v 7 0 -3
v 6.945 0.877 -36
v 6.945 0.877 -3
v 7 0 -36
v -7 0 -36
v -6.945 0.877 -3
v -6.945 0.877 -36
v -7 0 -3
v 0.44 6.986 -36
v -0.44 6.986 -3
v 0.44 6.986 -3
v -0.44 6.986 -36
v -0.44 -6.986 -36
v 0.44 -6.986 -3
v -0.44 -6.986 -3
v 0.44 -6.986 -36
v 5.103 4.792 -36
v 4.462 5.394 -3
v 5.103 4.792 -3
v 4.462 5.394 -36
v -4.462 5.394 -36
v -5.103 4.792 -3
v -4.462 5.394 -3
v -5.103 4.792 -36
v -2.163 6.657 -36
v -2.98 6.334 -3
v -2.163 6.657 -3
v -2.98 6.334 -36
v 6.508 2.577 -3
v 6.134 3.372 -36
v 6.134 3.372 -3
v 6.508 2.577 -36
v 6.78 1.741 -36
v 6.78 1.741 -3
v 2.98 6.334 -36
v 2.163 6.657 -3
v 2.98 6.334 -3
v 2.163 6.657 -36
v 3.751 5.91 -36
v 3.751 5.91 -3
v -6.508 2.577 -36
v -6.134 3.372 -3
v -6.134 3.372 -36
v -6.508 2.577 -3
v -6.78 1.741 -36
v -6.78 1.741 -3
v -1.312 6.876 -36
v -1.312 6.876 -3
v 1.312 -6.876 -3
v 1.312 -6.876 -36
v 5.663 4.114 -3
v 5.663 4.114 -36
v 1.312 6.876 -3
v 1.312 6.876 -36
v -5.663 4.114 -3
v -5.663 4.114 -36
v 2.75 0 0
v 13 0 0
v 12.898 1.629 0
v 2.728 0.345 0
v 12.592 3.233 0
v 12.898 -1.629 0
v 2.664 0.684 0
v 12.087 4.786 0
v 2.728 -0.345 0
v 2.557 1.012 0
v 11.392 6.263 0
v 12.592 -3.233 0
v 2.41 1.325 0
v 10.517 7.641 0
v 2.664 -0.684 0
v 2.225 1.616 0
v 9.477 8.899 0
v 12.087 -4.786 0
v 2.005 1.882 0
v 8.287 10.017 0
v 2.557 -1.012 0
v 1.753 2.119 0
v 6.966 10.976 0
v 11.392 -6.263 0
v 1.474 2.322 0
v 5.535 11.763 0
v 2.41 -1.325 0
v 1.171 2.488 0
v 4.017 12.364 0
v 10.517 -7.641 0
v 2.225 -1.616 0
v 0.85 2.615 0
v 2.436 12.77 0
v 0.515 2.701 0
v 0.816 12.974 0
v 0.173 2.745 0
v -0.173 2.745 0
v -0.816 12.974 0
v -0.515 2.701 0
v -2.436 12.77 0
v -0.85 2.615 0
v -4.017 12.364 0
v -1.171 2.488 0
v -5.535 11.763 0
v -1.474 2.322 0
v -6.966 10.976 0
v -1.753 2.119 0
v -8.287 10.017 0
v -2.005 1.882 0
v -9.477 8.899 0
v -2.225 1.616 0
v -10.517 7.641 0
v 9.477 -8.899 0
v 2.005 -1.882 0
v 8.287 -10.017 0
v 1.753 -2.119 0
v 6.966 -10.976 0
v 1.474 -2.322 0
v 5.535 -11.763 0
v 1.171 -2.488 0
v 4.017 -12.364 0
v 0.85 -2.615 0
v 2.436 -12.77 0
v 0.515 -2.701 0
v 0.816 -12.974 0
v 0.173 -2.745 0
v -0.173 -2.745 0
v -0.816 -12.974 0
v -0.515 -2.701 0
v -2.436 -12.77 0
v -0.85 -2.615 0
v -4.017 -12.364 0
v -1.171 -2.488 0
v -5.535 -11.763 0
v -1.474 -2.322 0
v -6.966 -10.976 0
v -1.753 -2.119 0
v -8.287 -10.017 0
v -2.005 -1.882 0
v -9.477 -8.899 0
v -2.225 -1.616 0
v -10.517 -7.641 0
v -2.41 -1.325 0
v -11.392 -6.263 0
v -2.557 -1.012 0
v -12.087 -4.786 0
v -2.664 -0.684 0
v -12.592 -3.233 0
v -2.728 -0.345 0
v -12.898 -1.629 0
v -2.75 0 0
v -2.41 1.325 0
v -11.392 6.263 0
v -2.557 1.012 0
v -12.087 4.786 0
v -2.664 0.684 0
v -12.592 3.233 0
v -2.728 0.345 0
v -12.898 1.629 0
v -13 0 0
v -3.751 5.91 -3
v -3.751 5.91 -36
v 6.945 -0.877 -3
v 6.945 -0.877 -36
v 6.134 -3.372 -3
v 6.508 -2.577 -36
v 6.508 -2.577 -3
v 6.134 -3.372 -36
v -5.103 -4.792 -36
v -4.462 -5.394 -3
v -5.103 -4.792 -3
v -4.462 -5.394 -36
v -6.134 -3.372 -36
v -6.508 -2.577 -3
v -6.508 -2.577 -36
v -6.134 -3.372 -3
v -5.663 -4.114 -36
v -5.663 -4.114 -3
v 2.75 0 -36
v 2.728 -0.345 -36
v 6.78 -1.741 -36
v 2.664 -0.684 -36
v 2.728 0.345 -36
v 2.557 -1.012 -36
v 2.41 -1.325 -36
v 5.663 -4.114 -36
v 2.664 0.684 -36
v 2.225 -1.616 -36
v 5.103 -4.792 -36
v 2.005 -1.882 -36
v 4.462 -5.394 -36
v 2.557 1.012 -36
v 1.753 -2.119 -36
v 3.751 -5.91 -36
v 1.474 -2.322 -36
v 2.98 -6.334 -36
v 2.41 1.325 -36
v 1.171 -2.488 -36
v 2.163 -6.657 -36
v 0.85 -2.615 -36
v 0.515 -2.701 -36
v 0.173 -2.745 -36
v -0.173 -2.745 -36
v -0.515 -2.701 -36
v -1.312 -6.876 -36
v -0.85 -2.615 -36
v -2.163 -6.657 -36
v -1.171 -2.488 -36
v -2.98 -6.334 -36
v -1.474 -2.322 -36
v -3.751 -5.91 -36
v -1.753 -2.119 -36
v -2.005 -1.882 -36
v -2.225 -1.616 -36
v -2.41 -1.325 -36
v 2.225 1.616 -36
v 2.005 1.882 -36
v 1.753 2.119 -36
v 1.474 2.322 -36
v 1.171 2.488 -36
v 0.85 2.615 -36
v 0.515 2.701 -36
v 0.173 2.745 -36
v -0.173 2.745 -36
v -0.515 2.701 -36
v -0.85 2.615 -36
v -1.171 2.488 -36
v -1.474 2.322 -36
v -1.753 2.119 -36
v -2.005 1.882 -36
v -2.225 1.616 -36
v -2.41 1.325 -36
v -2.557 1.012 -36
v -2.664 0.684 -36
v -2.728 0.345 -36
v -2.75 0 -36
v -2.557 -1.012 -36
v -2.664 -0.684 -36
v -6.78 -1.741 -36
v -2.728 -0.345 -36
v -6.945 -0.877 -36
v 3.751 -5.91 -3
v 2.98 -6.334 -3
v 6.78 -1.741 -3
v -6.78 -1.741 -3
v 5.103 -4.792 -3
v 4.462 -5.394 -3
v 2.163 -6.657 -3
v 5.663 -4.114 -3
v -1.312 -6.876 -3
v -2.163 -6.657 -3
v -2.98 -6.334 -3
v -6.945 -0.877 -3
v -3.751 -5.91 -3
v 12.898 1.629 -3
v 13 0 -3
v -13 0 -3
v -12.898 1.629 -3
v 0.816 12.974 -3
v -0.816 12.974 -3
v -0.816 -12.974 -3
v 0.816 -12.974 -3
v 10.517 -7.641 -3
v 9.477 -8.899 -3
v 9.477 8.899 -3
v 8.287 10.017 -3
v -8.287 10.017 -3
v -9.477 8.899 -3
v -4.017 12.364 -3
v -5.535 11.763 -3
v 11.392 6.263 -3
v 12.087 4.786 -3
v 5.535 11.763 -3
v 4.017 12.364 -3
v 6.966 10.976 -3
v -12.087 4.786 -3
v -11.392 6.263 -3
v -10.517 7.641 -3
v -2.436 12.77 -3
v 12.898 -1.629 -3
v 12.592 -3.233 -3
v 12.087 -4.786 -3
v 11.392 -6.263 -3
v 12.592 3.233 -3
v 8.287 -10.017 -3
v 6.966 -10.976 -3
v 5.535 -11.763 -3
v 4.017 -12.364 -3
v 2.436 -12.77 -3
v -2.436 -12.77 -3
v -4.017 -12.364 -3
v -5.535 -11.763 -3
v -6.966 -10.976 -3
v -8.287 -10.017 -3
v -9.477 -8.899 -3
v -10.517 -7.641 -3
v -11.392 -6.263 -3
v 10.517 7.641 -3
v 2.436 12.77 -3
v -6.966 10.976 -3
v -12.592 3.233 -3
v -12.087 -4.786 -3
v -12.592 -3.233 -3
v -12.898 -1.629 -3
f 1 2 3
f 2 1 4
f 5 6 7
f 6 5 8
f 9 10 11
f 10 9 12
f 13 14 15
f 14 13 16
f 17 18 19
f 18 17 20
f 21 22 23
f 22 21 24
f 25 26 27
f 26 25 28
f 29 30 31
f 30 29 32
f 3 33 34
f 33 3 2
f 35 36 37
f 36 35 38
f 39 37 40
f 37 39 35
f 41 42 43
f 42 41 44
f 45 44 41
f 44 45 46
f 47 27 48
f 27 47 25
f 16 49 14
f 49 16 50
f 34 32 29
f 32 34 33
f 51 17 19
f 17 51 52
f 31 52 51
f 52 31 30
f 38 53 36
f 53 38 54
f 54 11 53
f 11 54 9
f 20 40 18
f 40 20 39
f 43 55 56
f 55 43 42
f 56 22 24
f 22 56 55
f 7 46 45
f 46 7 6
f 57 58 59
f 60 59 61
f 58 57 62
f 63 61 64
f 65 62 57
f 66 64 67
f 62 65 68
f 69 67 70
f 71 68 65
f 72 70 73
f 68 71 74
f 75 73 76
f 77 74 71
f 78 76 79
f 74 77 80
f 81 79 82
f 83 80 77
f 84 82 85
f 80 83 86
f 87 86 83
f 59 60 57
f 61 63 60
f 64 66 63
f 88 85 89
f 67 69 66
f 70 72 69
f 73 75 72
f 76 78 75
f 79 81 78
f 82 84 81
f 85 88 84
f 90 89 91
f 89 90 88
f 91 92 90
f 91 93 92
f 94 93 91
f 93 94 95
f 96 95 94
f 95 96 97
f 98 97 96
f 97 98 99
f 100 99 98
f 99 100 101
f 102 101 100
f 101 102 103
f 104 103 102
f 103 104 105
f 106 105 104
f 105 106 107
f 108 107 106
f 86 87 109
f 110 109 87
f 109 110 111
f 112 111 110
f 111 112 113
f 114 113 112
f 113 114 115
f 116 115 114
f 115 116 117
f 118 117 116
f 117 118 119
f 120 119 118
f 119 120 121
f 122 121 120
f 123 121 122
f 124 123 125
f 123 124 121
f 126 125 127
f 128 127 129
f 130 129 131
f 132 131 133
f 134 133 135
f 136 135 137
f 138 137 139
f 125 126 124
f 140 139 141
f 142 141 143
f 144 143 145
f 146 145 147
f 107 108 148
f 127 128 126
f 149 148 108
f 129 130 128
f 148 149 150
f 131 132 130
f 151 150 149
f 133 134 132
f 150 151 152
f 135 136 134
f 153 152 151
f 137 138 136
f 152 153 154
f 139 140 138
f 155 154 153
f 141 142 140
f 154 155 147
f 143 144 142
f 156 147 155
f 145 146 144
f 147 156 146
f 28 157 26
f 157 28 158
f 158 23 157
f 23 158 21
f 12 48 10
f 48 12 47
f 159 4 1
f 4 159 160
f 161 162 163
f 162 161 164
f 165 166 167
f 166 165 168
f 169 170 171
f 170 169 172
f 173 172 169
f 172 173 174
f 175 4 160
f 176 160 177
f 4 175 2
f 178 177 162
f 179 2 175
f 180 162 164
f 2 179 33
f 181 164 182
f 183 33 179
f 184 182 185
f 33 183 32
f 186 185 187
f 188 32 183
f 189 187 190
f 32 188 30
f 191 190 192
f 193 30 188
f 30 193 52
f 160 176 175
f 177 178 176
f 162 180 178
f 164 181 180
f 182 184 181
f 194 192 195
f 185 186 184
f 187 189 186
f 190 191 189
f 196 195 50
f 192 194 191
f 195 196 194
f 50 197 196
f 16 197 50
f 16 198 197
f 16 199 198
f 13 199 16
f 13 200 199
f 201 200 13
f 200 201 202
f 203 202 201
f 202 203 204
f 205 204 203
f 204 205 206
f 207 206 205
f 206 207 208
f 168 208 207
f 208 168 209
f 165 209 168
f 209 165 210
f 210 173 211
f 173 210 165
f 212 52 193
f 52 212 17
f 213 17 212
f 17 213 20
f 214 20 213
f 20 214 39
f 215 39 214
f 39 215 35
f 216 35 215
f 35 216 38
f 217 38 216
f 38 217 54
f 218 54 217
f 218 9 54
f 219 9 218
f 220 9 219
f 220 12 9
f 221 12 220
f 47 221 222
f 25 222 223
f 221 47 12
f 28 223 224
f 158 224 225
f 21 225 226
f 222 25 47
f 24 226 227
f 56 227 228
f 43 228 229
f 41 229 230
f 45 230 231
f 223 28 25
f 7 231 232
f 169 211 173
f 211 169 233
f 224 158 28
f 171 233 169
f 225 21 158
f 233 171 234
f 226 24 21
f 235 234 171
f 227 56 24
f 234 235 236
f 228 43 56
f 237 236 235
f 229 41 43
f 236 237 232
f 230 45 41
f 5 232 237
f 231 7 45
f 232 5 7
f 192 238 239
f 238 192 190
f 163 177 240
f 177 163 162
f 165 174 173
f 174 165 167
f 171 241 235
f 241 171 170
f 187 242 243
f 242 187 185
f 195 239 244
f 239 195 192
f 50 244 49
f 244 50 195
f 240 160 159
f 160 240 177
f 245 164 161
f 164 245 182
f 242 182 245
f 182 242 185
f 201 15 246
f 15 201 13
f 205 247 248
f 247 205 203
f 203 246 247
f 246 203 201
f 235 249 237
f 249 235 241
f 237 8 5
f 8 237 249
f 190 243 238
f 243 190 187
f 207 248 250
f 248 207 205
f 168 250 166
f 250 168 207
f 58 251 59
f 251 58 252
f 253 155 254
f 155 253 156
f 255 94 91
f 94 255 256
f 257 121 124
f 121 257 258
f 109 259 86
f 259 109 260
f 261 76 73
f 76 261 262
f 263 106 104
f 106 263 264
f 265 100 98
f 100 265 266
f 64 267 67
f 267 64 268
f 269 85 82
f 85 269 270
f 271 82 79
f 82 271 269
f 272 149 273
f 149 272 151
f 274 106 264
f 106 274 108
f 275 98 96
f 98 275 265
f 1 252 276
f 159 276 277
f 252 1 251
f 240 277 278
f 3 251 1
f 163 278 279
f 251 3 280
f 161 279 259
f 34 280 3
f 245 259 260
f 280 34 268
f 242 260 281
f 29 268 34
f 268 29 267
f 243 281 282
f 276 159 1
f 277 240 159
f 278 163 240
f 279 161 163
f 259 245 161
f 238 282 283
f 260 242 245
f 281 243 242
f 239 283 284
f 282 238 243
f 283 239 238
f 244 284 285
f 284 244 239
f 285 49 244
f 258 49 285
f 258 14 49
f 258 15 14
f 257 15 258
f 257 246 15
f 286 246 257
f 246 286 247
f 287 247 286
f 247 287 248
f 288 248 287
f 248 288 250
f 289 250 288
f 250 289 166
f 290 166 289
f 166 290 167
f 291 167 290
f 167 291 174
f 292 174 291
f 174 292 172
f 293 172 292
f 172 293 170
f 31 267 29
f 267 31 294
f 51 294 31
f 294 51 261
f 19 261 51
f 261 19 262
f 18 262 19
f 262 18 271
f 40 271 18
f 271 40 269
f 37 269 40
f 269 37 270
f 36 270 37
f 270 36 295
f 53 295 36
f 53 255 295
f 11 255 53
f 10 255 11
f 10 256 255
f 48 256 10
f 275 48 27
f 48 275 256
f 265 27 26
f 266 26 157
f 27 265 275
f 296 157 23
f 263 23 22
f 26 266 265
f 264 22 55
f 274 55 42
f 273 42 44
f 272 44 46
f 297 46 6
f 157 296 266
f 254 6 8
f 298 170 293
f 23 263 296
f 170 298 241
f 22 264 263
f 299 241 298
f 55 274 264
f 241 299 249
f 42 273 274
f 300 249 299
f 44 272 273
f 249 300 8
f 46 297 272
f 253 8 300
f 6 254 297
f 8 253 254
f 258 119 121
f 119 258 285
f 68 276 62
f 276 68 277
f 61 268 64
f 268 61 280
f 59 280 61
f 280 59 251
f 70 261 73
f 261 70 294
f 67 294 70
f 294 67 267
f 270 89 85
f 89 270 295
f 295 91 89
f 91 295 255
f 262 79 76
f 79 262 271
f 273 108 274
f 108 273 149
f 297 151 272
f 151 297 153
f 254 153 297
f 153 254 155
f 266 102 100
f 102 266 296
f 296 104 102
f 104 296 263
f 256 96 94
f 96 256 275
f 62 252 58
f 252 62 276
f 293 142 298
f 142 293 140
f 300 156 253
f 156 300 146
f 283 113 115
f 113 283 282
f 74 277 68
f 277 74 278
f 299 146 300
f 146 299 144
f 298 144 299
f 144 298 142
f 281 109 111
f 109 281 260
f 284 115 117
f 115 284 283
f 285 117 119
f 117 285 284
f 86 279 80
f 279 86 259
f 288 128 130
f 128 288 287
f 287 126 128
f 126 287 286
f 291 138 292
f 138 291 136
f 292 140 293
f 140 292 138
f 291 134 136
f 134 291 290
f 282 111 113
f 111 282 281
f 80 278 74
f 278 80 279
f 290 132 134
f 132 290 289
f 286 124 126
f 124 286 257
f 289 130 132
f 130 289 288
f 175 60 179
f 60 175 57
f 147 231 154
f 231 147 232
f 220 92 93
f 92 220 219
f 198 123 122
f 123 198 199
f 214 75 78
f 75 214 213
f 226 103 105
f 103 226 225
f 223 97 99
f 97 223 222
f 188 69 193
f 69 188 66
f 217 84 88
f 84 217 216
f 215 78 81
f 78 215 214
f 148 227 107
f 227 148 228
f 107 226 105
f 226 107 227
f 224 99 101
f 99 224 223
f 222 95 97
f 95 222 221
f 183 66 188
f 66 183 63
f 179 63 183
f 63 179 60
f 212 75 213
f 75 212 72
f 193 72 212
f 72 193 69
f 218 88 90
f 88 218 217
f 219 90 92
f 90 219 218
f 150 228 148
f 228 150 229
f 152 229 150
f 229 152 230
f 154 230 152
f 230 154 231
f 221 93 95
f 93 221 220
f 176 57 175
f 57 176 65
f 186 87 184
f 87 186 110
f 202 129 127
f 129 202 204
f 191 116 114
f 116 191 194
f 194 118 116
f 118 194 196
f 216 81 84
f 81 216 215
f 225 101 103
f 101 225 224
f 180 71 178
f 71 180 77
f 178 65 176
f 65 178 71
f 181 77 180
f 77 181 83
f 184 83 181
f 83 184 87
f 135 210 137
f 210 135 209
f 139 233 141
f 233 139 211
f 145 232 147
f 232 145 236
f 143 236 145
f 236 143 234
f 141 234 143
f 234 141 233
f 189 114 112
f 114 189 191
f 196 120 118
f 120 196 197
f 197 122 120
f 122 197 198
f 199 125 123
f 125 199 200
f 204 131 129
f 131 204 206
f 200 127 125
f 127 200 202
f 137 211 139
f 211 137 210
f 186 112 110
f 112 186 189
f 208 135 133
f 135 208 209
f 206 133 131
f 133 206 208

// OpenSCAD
$fn = 50;


difference() {
	union() {
		translate(v = [0, 0, -36.0000000000]) {
			cylinder(h = 36, r = 7.0000000000);
		}
		translate(v = [0, 0, -3.0000000000]) {
			cylinder(h = 3, r = 13.0000000000);
		}
	}
	union() {
		#translate(v = [0, 0, -36]) {
			cylinder(h = 36, r = 2.7500000000);
		}
	}
}
